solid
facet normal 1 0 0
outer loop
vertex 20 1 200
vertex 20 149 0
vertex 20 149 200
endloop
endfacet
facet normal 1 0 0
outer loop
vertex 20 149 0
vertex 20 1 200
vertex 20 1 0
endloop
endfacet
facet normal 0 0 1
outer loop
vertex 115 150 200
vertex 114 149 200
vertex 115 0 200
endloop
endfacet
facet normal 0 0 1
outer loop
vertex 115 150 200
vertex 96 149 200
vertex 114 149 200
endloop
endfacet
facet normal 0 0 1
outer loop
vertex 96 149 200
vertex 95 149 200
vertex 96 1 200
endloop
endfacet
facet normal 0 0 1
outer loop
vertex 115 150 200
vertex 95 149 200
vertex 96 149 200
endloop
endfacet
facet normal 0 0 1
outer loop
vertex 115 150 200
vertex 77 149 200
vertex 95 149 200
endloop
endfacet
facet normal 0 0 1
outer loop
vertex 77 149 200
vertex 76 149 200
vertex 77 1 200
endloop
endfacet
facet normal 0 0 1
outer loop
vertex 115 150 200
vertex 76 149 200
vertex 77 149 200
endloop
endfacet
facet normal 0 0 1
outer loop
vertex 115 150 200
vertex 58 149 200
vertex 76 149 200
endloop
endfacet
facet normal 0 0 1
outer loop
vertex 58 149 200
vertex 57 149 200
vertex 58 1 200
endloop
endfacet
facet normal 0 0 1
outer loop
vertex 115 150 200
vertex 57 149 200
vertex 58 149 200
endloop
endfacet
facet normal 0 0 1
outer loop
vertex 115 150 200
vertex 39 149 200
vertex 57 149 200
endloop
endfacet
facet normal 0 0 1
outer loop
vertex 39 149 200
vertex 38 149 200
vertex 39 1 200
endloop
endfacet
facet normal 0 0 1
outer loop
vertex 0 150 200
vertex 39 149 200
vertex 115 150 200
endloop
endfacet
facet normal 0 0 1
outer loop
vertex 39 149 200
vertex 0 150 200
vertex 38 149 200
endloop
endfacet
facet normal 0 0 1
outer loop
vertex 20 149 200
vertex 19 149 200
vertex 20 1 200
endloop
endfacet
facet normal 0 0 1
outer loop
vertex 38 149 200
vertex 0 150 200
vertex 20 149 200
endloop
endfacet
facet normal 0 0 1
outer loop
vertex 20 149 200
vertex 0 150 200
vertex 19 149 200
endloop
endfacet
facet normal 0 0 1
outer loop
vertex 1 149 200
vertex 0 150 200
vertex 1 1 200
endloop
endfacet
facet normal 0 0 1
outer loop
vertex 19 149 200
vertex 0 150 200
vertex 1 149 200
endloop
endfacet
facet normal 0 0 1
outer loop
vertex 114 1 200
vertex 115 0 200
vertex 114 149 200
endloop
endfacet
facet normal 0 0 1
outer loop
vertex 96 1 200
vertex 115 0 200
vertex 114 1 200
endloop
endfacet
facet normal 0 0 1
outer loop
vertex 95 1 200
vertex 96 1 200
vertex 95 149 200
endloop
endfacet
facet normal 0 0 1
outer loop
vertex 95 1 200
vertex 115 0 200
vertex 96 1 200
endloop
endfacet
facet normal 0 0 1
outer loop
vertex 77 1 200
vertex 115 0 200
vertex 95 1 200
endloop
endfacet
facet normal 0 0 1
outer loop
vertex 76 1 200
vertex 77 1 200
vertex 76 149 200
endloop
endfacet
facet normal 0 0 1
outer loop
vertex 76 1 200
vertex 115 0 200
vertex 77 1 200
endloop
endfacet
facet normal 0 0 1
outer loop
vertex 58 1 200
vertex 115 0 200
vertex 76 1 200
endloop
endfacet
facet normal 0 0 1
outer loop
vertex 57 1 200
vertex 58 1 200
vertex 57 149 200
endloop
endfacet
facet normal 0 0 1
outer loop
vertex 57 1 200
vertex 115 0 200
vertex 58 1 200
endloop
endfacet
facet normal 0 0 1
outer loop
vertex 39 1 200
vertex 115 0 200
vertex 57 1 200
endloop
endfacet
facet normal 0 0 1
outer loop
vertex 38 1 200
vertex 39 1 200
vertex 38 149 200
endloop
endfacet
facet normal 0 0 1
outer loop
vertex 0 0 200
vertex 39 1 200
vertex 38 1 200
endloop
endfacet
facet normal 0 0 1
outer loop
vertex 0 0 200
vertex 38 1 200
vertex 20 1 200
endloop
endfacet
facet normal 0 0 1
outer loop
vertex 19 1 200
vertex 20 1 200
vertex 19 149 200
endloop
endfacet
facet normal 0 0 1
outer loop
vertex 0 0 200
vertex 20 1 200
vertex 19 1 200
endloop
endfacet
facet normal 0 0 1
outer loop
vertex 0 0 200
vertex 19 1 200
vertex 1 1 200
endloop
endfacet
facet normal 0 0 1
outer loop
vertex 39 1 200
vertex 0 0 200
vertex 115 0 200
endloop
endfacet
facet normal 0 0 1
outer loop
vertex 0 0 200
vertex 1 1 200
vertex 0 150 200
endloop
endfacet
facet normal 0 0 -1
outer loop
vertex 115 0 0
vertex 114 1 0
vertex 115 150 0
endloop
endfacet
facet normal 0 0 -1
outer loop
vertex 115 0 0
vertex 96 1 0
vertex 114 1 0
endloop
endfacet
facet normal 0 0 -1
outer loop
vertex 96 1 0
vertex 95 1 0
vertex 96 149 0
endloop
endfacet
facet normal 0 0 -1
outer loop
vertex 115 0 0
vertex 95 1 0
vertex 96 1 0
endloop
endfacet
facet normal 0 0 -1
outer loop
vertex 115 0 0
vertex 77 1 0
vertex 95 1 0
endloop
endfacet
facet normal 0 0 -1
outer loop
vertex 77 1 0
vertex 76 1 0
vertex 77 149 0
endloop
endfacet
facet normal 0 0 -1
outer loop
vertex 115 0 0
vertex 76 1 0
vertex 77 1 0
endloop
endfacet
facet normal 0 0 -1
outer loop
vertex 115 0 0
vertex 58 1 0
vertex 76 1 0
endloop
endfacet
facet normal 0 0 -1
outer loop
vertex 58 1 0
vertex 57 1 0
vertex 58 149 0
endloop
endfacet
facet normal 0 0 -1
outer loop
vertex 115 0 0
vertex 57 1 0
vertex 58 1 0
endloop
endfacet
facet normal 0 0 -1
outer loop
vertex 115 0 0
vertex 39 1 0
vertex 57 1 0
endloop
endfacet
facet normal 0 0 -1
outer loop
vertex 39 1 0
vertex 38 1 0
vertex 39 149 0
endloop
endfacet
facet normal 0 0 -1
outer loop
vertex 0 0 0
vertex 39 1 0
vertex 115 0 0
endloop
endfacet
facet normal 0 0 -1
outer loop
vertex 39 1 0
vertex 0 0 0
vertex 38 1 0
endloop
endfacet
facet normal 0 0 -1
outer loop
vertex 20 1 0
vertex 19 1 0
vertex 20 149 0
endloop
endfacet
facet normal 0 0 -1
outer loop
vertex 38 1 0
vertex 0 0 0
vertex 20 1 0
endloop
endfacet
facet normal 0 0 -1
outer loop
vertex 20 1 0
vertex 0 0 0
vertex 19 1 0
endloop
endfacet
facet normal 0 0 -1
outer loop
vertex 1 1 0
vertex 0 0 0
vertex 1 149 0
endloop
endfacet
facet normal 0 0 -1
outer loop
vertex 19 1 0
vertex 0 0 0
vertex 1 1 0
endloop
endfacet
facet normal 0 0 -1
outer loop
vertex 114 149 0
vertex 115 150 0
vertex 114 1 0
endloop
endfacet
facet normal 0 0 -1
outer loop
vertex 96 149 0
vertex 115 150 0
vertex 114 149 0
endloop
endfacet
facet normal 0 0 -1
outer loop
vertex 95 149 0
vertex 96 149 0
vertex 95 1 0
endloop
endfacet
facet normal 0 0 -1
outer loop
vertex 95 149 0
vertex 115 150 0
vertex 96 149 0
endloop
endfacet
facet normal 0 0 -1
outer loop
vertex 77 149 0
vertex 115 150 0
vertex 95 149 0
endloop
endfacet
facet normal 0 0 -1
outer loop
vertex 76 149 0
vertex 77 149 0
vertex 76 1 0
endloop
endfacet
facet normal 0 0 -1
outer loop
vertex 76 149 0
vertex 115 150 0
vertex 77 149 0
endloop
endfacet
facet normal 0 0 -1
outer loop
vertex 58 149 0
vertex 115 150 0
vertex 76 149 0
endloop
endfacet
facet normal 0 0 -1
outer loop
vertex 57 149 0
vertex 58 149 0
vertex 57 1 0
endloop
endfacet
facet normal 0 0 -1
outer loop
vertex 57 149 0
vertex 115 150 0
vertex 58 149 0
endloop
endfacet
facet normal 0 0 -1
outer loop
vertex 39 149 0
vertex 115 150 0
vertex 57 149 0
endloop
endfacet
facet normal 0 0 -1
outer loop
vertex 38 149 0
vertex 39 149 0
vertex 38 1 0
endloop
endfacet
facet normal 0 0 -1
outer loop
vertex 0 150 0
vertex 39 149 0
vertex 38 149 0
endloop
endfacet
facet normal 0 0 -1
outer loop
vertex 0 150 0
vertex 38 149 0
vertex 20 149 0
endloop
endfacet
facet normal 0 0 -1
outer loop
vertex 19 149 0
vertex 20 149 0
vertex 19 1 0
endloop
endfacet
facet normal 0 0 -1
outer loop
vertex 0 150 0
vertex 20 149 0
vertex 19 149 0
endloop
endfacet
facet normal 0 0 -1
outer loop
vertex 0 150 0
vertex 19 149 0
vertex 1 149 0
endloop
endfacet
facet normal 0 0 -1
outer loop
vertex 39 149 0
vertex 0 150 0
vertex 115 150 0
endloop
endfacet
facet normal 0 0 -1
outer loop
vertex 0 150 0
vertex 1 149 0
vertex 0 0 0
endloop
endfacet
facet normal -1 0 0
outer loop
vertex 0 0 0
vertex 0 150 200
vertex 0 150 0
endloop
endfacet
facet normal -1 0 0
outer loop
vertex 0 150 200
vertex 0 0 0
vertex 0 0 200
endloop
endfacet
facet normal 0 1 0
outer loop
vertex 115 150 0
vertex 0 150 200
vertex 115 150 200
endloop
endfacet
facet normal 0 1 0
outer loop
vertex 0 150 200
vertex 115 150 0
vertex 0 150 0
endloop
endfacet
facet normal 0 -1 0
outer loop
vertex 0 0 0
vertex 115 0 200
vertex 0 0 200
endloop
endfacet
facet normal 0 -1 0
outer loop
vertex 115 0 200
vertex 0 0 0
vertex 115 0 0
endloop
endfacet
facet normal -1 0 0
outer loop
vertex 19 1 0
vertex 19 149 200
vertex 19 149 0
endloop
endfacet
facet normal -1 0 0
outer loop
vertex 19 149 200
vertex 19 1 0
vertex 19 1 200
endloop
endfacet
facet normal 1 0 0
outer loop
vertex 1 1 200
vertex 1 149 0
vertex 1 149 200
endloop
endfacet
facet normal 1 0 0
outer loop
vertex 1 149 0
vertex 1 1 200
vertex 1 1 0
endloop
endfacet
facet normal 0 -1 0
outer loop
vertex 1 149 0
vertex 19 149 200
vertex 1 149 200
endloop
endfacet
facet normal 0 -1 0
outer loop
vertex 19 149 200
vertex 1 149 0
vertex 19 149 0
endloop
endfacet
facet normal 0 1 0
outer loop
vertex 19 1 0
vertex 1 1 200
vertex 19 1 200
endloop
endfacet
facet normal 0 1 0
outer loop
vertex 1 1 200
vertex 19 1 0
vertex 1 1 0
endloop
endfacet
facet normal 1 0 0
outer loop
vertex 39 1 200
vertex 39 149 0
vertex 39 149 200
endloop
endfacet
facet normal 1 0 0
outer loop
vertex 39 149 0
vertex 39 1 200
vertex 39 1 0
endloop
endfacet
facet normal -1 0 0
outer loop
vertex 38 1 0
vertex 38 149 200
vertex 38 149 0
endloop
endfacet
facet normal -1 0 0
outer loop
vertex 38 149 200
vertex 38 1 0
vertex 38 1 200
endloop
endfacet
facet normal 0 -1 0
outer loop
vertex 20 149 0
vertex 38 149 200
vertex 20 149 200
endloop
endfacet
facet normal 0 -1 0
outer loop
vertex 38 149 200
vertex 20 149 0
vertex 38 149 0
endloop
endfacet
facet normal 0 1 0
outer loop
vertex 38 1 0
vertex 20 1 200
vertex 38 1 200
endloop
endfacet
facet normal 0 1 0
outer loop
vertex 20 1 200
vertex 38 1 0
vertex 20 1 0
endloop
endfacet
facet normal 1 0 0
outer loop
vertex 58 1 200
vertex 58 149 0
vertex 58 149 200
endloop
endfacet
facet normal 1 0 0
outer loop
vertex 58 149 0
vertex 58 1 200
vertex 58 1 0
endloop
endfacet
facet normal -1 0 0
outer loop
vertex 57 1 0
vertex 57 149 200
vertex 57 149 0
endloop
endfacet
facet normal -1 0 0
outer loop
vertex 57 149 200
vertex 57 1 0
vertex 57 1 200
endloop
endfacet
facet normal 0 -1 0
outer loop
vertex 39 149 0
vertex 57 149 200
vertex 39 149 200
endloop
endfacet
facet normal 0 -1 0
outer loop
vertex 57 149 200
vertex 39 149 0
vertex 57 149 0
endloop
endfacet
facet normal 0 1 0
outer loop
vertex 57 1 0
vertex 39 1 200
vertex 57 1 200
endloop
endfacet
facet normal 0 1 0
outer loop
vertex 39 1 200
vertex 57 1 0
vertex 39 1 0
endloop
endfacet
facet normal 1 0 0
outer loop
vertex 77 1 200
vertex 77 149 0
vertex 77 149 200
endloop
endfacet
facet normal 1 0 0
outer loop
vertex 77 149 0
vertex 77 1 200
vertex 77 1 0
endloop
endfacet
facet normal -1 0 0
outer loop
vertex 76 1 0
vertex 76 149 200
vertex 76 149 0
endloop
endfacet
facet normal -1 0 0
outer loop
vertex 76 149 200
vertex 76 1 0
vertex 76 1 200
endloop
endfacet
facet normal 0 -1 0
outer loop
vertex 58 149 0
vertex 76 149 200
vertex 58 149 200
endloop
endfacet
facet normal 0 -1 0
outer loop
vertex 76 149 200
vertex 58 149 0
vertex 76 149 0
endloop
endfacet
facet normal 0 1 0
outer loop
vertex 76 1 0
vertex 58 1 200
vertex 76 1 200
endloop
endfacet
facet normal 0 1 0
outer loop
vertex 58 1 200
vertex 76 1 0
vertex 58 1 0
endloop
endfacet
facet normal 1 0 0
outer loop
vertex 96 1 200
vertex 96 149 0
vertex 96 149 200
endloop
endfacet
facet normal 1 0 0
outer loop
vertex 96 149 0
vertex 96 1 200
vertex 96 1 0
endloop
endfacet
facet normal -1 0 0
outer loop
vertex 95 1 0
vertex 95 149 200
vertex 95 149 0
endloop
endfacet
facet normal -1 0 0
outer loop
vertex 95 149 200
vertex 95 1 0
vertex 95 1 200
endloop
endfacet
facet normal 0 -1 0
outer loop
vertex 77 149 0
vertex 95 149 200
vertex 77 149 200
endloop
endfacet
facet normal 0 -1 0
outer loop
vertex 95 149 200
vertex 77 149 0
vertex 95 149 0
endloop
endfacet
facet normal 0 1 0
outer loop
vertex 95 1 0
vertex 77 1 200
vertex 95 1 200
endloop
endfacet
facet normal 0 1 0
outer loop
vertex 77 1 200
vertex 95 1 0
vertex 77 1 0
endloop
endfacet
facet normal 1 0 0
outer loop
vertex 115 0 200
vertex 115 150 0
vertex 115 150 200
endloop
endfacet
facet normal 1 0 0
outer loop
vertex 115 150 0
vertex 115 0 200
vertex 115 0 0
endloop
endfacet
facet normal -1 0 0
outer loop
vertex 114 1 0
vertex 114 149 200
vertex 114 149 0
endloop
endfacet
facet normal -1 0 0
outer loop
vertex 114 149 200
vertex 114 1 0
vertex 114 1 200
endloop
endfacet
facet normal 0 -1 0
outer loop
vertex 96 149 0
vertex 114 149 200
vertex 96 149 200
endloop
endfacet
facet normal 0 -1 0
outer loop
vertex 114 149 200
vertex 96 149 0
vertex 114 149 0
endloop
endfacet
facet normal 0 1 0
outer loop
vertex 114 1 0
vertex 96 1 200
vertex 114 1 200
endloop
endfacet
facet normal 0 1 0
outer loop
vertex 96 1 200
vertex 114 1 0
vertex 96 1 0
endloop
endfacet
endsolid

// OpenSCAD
module dan() {
    difference() {
        cube([20, 150, 200]);
        translate([1, 1, -5]) cube([18, 148, 210]);
    }
}

dan();
translate([19, 0, 0]) dan();
translate([38, 0, 0]) dan();
translate([57, 0, 0]) dan();
translate([76, 0, 0]) dan();
translate([95, 0, 0]) dan();
